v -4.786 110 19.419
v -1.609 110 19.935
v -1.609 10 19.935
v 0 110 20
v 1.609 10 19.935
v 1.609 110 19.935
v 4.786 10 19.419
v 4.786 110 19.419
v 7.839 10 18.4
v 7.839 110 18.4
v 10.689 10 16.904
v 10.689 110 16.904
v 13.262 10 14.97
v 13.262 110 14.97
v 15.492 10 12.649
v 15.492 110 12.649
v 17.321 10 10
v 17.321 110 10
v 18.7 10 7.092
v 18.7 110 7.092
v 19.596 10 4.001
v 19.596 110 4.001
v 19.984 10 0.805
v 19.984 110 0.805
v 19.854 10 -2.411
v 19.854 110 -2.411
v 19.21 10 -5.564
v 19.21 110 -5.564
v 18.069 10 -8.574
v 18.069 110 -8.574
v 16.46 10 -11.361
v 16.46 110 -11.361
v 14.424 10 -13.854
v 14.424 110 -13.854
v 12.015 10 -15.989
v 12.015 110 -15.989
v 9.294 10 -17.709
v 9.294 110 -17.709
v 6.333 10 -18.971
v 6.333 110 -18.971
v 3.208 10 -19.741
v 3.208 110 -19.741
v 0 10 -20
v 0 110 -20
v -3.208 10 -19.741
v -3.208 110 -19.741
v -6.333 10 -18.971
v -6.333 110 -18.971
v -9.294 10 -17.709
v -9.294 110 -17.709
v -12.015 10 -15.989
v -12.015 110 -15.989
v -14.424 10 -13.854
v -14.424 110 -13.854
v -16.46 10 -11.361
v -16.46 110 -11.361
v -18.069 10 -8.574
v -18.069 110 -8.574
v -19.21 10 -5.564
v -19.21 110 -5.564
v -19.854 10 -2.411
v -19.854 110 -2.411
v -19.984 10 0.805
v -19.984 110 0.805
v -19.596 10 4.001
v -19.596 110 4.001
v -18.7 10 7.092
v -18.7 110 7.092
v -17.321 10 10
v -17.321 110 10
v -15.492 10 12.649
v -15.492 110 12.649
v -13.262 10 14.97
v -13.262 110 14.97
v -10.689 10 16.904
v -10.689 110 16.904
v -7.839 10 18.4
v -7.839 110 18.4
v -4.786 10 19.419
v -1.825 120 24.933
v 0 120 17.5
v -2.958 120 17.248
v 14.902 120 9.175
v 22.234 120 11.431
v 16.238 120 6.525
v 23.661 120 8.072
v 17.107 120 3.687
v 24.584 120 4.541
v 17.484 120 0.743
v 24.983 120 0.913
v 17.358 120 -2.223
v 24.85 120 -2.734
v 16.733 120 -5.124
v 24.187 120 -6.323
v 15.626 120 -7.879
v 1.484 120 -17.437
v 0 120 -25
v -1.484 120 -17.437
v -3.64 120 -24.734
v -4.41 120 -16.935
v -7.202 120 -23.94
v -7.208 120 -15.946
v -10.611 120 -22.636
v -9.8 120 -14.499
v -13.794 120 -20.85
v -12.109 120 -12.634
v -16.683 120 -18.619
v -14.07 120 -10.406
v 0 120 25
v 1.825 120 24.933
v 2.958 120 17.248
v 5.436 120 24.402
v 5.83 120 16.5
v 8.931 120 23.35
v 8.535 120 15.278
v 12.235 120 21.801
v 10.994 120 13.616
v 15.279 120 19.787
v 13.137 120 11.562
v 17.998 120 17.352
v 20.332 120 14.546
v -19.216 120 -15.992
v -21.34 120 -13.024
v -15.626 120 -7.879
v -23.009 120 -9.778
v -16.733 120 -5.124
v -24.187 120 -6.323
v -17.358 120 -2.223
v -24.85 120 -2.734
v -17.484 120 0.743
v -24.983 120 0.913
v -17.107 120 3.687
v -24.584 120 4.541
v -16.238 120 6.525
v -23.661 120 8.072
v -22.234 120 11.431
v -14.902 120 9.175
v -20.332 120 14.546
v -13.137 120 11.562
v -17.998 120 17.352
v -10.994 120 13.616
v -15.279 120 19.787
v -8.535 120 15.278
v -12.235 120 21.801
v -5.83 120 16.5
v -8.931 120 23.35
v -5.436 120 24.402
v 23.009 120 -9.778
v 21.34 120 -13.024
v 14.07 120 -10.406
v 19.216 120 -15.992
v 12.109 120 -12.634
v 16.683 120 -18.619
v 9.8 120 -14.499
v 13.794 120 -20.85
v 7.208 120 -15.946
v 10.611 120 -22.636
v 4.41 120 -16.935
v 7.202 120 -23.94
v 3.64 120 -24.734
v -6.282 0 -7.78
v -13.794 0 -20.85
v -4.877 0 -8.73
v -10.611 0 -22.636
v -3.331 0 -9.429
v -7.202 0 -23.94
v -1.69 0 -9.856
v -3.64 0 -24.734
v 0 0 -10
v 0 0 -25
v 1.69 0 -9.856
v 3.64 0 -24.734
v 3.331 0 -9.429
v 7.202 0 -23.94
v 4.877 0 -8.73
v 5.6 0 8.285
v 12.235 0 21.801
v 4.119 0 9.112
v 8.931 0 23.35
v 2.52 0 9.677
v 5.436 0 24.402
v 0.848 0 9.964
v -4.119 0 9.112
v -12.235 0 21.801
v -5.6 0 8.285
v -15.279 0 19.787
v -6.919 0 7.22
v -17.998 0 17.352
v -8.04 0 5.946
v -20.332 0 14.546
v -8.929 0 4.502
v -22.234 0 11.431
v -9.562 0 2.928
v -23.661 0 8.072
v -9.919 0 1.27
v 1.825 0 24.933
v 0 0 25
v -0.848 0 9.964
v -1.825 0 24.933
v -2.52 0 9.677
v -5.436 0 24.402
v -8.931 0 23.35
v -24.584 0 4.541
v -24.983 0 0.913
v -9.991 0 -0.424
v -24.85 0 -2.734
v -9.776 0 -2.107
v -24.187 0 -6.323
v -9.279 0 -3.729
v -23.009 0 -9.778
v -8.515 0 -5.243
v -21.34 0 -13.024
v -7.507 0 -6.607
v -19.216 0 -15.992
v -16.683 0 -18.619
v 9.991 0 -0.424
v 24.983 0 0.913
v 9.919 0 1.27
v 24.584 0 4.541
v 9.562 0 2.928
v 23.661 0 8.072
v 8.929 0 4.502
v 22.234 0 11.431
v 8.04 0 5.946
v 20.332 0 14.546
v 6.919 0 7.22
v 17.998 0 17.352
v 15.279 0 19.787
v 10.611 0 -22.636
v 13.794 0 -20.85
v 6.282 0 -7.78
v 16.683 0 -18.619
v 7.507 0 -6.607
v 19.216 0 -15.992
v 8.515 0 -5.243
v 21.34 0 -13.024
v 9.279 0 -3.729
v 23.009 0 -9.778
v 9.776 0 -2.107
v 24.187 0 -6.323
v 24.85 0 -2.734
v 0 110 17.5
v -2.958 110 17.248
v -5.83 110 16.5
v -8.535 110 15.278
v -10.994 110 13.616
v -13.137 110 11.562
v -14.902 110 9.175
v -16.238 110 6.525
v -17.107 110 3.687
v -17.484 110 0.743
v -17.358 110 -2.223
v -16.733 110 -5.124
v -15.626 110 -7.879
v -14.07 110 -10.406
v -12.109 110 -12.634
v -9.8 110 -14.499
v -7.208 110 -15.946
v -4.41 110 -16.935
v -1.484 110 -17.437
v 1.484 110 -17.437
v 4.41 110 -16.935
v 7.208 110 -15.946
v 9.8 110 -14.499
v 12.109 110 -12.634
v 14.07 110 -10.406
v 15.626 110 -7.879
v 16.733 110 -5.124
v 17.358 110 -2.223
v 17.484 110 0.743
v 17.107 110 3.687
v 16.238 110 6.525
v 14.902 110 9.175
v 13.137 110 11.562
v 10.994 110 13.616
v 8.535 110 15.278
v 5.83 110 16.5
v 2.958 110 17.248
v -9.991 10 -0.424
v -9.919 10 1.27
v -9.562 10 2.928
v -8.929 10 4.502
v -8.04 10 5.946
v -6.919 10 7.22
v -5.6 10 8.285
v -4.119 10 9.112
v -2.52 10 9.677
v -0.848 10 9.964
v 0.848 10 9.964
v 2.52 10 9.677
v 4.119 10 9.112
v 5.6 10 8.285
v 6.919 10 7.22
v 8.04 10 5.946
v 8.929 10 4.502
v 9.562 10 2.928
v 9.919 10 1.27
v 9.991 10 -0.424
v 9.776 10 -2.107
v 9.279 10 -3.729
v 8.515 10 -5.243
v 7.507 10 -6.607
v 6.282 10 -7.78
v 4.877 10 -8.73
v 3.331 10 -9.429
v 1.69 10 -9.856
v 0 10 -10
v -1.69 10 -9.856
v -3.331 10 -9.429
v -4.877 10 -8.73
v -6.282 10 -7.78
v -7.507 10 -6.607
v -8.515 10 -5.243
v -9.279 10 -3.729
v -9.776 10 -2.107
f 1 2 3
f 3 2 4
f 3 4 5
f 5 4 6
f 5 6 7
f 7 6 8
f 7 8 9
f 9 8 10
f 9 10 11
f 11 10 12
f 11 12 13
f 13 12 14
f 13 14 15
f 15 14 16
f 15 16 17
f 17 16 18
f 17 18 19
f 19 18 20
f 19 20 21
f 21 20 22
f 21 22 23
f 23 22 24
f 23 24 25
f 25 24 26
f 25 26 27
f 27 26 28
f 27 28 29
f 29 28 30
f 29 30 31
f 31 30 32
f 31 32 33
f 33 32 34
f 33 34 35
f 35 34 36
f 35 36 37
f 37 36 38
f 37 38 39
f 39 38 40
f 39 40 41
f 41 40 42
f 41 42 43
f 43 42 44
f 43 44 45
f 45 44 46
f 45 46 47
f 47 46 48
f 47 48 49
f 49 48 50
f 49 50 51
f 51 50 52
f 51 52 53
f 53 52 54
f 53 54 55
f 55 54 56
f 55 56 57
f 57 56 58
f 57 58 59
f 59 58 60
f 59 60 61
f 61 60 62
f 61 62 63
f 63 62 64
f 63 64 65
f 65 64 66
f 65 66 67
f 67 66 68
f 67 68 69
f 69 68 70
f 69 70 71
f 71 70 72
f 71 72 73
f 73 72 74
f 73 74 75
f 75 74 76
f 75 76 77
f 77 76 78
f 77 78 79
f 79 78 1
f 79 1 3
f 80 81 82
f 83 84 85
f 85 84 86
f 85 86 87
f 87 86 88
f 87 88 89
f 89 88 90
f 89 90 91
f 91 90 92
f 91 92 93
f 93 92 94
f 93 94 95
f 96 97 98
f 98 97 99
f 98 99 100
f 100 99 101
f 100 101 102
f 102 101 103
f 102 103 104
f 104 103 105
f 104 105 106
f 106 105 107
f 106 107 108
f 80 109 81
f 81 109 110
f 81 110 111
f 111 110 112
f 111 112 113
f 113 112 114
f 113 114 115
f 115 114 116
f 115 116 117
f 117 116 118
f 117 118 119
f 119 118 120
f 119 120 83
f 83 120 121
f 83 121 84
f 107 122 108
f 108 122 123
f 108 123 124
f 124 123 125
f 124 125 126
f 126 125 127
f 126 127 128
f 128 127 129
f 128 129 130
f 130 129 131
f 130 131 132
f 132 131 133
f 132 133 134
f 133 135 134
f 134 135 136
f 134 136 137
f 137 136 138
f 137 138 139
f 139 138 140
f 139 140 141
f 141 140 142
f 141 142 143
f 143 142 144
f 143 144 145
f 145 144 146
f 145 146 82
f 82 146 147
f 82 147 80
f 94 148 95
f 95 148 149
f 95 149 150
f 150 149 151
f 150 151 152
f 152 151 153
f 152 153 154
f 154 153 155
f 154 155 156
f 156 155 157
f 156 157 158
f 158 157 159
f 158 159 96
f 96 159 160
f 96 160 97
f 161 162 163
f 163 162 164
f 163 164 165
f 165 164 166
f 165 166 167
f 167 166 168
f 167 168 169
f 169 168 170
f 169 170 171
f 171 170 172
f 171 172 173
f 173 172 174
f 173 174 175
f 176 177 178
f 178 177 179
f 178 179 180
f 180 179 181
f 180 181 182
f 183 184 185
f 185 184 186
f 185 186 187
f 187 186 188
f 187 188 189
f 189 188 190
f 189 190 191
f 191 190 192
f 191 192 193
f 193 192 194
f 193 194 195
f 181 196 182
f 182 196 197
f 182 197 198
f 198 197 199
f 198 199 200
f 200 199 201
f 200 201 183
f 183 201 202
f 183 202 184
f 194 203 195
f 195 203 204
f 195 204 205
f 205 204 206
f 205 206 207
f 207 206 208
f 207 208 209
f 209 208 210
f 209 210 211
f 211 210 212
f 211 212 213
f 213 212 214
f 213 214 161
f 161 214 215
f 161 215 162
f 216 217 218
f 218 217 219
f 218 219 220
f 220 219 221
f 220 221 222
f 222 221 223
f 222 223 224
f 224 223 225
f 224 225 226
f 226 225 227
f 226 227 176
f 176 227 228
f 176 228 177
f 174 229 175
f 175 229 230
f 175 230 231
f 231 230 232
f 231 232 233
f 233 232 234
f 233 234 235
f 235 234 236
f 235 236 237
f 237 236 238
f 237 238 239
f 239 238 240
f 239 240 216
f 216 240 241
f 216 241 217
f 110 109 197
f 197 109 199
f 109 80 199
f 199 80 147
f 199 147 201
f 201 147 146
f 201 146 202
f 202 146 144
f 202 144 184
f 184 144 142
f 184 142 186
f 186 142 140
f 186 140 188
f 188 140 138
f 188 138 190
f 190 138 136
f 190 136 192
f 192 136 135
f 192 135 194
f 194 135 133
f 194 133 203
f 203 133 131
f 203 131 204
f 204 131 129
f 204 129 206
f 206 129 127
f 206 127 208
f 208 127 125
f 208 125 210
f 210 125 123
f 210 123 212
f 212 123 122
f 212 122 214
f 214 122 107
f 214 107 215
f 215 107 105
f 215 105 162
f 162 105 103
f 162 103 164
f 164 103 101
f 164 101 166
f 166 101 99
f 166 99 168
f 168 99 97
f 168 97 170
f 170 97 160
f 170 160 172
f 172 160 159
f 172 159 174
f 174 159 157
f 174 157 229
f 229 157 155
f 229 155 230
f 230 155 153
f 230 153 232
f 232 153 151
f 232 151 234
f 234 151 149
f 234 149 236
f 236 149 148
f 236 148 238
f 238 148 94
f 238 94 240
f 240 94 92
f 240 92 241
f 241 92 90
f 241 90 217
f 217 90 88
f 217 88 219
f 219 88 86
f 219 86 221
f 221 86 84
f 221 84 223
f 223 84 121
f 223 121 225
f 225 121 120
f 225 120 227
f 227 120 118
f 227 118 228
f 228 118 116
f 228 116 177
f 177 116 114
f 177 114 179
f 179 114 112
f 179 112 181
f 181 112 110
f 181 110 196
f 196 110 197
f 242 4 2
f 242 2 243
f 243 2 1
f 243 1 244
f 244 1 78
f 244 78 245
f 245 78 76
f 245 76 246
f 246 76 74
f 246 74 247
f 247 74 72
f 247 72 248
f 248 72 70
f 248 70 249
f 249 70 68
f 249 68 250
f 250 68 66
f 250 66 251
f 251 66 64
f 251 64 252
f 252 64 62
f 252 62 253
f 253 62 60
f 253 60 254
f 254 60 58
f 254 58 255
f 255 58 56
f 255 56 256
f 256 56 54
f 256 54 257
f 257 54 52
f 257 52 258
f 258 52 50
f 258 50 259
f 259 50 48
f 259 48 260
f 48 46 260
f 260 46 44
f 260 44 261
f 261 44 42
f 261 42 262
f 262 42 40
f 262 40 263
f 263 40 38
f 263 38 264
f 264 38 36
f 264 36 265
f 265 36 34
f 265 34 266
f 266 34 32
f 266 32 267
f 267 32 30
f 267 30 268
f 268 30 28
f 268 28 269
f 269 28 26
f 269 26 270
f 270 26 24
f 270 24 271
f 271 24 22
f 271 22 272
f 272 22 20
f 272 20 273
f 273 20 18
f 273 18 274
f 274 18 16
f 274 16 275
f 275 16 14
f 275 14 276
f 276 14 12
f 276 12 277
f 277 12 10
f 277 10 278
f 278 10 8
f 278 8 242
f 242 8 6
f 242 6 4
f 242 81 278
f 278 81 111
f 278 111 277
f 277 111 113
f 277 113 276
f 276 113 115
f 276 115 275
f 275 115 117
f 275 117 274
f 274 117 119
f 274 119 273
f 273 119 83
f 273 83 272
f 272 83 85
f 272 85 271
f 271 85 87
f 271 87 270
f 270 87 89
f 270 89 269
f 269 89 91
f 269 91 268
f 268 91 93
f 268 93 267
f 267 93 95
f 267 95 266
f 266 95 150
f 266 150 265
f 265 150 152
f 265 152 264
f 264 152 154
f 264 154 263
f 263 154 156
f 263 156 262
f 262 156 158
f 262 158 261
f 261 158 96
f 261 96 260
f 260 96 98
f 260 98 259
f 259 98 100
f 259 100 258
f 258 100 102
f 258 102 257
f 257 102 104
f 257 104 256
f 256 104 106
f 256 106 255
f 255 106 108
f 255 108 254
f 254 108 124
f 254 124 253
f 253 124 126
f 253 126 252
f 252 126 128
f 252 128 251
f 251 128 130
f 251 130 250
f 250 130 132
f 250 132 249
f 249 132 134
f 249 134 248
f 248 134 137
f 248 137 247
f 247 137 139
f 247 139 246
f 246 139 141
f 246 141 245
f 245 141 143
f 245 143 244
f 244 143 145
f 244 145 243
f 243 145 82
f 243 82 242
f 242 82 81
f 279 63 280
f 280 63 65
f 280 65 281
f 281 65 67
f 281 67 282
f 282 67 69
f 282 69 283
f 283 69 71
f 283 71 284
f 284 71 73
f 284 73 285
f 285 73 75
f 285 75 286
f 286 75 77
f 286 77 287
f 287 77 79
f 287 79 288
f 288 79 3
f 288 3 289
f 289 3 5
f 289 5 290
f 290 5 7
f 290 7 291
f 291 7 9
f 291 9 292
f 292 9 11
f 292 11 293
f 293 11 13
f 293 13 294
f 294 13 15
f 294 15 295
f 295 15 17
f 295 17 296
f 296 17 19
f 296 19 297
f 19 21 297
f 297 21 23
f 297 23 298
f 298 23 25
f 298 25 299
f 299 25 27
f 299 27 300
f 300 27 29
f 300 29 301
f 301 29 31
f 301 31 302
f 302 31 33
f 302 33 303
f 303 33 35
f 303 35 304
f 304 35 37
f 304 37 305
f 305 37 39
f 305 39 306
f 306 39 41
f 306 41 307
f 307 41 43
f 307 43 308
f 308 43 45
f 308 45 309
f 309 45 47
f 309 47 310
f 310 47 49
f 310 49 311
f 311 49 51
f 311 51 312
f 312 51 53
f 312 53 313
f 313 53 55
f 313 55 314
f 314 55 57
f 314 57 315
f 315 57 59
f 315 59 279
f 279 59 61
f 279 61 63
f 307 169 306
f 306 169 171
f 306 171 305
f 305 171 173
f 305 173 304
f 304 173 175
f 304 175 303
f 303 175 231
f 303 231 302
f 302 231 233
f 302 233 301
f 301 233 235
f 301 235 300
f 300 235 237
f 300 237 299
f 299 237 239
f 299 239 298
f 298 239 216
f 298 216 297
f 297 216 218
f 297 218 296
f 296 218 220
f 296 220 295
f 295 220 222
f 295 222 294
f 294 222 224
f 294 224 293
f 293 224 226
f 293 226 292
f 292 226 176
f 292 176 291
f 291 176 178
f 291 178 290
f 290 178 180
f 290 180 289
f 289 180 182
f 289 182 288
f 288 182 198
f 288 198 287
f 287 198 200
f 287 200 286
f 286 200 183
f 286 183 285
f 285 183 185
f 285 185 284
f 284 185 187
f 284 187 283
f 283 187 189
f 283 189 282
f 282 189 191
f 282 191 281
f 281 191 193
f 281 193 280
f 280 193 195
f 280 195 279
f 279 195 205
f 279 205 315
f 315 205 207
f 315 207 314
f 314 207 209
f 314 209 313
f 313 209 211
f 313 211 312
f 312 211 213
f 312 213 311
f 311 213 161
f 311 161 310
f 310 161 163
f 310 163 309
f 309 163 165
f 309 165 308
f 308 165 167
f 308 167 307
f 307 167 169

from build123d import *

# Parameters (mm, degrees)
SKETCH1_R           = 25
SKETCH1_R_2         = 20
BOSS_EXTRUDE1_DEPTH = 120
SKETCH2_R           = 20
SKETCH2_R_2         = 17.5
BOSS_EXTRUDE2_DEPTH = 10
SKETCH3_R           = 20
SKETCH3_R_2         = 10
BOSS_EXTRUDE3_DEPTH = 10


with BuildPart() as part:
    # Sketch1 → Boss-Extrude1 (new body)
    with BuildSketch(Plane(origin=(0, 0, 0), x_dir=(1, 0, 0), z_dir=(0, 1, 0))):
        Circle(SKETCH1_R)
        Circle(SKETCH1_R_2, mode=Mode.SUBTRACT)
    extrude(amount=BOSS_EXTRUDE1_DEPTH)

    # Sketch2 → Boss-Extrude2 (add)
    with BuildSketch(Plane(origin=(0, 120, 0), x_dir=(1, 0, 0), z_dir=(0, 1, 0))):
        Circle(SKETCH2_R)
        Circle(SKETCH2_R_2, mode=Mode.SUBTRACT)
    extrude(amount=-BOSS_EXTRUDE2_DEPTH)

    # Sketch3 → Boss-Extrude3 (add)
    with BuildSketch(Plane(origin=(0, 0, 0), x_dir=(-1, 0, 0), z_dir=(0, -1, 0))):
        Circle(SKETCH3_R)
        Circle(SKETCH3_R_2, mode=Mode.SUBTRACT)
    extrude(amount=-BOSS_EXTRUDE3_DEPTH)


solid = part.part
